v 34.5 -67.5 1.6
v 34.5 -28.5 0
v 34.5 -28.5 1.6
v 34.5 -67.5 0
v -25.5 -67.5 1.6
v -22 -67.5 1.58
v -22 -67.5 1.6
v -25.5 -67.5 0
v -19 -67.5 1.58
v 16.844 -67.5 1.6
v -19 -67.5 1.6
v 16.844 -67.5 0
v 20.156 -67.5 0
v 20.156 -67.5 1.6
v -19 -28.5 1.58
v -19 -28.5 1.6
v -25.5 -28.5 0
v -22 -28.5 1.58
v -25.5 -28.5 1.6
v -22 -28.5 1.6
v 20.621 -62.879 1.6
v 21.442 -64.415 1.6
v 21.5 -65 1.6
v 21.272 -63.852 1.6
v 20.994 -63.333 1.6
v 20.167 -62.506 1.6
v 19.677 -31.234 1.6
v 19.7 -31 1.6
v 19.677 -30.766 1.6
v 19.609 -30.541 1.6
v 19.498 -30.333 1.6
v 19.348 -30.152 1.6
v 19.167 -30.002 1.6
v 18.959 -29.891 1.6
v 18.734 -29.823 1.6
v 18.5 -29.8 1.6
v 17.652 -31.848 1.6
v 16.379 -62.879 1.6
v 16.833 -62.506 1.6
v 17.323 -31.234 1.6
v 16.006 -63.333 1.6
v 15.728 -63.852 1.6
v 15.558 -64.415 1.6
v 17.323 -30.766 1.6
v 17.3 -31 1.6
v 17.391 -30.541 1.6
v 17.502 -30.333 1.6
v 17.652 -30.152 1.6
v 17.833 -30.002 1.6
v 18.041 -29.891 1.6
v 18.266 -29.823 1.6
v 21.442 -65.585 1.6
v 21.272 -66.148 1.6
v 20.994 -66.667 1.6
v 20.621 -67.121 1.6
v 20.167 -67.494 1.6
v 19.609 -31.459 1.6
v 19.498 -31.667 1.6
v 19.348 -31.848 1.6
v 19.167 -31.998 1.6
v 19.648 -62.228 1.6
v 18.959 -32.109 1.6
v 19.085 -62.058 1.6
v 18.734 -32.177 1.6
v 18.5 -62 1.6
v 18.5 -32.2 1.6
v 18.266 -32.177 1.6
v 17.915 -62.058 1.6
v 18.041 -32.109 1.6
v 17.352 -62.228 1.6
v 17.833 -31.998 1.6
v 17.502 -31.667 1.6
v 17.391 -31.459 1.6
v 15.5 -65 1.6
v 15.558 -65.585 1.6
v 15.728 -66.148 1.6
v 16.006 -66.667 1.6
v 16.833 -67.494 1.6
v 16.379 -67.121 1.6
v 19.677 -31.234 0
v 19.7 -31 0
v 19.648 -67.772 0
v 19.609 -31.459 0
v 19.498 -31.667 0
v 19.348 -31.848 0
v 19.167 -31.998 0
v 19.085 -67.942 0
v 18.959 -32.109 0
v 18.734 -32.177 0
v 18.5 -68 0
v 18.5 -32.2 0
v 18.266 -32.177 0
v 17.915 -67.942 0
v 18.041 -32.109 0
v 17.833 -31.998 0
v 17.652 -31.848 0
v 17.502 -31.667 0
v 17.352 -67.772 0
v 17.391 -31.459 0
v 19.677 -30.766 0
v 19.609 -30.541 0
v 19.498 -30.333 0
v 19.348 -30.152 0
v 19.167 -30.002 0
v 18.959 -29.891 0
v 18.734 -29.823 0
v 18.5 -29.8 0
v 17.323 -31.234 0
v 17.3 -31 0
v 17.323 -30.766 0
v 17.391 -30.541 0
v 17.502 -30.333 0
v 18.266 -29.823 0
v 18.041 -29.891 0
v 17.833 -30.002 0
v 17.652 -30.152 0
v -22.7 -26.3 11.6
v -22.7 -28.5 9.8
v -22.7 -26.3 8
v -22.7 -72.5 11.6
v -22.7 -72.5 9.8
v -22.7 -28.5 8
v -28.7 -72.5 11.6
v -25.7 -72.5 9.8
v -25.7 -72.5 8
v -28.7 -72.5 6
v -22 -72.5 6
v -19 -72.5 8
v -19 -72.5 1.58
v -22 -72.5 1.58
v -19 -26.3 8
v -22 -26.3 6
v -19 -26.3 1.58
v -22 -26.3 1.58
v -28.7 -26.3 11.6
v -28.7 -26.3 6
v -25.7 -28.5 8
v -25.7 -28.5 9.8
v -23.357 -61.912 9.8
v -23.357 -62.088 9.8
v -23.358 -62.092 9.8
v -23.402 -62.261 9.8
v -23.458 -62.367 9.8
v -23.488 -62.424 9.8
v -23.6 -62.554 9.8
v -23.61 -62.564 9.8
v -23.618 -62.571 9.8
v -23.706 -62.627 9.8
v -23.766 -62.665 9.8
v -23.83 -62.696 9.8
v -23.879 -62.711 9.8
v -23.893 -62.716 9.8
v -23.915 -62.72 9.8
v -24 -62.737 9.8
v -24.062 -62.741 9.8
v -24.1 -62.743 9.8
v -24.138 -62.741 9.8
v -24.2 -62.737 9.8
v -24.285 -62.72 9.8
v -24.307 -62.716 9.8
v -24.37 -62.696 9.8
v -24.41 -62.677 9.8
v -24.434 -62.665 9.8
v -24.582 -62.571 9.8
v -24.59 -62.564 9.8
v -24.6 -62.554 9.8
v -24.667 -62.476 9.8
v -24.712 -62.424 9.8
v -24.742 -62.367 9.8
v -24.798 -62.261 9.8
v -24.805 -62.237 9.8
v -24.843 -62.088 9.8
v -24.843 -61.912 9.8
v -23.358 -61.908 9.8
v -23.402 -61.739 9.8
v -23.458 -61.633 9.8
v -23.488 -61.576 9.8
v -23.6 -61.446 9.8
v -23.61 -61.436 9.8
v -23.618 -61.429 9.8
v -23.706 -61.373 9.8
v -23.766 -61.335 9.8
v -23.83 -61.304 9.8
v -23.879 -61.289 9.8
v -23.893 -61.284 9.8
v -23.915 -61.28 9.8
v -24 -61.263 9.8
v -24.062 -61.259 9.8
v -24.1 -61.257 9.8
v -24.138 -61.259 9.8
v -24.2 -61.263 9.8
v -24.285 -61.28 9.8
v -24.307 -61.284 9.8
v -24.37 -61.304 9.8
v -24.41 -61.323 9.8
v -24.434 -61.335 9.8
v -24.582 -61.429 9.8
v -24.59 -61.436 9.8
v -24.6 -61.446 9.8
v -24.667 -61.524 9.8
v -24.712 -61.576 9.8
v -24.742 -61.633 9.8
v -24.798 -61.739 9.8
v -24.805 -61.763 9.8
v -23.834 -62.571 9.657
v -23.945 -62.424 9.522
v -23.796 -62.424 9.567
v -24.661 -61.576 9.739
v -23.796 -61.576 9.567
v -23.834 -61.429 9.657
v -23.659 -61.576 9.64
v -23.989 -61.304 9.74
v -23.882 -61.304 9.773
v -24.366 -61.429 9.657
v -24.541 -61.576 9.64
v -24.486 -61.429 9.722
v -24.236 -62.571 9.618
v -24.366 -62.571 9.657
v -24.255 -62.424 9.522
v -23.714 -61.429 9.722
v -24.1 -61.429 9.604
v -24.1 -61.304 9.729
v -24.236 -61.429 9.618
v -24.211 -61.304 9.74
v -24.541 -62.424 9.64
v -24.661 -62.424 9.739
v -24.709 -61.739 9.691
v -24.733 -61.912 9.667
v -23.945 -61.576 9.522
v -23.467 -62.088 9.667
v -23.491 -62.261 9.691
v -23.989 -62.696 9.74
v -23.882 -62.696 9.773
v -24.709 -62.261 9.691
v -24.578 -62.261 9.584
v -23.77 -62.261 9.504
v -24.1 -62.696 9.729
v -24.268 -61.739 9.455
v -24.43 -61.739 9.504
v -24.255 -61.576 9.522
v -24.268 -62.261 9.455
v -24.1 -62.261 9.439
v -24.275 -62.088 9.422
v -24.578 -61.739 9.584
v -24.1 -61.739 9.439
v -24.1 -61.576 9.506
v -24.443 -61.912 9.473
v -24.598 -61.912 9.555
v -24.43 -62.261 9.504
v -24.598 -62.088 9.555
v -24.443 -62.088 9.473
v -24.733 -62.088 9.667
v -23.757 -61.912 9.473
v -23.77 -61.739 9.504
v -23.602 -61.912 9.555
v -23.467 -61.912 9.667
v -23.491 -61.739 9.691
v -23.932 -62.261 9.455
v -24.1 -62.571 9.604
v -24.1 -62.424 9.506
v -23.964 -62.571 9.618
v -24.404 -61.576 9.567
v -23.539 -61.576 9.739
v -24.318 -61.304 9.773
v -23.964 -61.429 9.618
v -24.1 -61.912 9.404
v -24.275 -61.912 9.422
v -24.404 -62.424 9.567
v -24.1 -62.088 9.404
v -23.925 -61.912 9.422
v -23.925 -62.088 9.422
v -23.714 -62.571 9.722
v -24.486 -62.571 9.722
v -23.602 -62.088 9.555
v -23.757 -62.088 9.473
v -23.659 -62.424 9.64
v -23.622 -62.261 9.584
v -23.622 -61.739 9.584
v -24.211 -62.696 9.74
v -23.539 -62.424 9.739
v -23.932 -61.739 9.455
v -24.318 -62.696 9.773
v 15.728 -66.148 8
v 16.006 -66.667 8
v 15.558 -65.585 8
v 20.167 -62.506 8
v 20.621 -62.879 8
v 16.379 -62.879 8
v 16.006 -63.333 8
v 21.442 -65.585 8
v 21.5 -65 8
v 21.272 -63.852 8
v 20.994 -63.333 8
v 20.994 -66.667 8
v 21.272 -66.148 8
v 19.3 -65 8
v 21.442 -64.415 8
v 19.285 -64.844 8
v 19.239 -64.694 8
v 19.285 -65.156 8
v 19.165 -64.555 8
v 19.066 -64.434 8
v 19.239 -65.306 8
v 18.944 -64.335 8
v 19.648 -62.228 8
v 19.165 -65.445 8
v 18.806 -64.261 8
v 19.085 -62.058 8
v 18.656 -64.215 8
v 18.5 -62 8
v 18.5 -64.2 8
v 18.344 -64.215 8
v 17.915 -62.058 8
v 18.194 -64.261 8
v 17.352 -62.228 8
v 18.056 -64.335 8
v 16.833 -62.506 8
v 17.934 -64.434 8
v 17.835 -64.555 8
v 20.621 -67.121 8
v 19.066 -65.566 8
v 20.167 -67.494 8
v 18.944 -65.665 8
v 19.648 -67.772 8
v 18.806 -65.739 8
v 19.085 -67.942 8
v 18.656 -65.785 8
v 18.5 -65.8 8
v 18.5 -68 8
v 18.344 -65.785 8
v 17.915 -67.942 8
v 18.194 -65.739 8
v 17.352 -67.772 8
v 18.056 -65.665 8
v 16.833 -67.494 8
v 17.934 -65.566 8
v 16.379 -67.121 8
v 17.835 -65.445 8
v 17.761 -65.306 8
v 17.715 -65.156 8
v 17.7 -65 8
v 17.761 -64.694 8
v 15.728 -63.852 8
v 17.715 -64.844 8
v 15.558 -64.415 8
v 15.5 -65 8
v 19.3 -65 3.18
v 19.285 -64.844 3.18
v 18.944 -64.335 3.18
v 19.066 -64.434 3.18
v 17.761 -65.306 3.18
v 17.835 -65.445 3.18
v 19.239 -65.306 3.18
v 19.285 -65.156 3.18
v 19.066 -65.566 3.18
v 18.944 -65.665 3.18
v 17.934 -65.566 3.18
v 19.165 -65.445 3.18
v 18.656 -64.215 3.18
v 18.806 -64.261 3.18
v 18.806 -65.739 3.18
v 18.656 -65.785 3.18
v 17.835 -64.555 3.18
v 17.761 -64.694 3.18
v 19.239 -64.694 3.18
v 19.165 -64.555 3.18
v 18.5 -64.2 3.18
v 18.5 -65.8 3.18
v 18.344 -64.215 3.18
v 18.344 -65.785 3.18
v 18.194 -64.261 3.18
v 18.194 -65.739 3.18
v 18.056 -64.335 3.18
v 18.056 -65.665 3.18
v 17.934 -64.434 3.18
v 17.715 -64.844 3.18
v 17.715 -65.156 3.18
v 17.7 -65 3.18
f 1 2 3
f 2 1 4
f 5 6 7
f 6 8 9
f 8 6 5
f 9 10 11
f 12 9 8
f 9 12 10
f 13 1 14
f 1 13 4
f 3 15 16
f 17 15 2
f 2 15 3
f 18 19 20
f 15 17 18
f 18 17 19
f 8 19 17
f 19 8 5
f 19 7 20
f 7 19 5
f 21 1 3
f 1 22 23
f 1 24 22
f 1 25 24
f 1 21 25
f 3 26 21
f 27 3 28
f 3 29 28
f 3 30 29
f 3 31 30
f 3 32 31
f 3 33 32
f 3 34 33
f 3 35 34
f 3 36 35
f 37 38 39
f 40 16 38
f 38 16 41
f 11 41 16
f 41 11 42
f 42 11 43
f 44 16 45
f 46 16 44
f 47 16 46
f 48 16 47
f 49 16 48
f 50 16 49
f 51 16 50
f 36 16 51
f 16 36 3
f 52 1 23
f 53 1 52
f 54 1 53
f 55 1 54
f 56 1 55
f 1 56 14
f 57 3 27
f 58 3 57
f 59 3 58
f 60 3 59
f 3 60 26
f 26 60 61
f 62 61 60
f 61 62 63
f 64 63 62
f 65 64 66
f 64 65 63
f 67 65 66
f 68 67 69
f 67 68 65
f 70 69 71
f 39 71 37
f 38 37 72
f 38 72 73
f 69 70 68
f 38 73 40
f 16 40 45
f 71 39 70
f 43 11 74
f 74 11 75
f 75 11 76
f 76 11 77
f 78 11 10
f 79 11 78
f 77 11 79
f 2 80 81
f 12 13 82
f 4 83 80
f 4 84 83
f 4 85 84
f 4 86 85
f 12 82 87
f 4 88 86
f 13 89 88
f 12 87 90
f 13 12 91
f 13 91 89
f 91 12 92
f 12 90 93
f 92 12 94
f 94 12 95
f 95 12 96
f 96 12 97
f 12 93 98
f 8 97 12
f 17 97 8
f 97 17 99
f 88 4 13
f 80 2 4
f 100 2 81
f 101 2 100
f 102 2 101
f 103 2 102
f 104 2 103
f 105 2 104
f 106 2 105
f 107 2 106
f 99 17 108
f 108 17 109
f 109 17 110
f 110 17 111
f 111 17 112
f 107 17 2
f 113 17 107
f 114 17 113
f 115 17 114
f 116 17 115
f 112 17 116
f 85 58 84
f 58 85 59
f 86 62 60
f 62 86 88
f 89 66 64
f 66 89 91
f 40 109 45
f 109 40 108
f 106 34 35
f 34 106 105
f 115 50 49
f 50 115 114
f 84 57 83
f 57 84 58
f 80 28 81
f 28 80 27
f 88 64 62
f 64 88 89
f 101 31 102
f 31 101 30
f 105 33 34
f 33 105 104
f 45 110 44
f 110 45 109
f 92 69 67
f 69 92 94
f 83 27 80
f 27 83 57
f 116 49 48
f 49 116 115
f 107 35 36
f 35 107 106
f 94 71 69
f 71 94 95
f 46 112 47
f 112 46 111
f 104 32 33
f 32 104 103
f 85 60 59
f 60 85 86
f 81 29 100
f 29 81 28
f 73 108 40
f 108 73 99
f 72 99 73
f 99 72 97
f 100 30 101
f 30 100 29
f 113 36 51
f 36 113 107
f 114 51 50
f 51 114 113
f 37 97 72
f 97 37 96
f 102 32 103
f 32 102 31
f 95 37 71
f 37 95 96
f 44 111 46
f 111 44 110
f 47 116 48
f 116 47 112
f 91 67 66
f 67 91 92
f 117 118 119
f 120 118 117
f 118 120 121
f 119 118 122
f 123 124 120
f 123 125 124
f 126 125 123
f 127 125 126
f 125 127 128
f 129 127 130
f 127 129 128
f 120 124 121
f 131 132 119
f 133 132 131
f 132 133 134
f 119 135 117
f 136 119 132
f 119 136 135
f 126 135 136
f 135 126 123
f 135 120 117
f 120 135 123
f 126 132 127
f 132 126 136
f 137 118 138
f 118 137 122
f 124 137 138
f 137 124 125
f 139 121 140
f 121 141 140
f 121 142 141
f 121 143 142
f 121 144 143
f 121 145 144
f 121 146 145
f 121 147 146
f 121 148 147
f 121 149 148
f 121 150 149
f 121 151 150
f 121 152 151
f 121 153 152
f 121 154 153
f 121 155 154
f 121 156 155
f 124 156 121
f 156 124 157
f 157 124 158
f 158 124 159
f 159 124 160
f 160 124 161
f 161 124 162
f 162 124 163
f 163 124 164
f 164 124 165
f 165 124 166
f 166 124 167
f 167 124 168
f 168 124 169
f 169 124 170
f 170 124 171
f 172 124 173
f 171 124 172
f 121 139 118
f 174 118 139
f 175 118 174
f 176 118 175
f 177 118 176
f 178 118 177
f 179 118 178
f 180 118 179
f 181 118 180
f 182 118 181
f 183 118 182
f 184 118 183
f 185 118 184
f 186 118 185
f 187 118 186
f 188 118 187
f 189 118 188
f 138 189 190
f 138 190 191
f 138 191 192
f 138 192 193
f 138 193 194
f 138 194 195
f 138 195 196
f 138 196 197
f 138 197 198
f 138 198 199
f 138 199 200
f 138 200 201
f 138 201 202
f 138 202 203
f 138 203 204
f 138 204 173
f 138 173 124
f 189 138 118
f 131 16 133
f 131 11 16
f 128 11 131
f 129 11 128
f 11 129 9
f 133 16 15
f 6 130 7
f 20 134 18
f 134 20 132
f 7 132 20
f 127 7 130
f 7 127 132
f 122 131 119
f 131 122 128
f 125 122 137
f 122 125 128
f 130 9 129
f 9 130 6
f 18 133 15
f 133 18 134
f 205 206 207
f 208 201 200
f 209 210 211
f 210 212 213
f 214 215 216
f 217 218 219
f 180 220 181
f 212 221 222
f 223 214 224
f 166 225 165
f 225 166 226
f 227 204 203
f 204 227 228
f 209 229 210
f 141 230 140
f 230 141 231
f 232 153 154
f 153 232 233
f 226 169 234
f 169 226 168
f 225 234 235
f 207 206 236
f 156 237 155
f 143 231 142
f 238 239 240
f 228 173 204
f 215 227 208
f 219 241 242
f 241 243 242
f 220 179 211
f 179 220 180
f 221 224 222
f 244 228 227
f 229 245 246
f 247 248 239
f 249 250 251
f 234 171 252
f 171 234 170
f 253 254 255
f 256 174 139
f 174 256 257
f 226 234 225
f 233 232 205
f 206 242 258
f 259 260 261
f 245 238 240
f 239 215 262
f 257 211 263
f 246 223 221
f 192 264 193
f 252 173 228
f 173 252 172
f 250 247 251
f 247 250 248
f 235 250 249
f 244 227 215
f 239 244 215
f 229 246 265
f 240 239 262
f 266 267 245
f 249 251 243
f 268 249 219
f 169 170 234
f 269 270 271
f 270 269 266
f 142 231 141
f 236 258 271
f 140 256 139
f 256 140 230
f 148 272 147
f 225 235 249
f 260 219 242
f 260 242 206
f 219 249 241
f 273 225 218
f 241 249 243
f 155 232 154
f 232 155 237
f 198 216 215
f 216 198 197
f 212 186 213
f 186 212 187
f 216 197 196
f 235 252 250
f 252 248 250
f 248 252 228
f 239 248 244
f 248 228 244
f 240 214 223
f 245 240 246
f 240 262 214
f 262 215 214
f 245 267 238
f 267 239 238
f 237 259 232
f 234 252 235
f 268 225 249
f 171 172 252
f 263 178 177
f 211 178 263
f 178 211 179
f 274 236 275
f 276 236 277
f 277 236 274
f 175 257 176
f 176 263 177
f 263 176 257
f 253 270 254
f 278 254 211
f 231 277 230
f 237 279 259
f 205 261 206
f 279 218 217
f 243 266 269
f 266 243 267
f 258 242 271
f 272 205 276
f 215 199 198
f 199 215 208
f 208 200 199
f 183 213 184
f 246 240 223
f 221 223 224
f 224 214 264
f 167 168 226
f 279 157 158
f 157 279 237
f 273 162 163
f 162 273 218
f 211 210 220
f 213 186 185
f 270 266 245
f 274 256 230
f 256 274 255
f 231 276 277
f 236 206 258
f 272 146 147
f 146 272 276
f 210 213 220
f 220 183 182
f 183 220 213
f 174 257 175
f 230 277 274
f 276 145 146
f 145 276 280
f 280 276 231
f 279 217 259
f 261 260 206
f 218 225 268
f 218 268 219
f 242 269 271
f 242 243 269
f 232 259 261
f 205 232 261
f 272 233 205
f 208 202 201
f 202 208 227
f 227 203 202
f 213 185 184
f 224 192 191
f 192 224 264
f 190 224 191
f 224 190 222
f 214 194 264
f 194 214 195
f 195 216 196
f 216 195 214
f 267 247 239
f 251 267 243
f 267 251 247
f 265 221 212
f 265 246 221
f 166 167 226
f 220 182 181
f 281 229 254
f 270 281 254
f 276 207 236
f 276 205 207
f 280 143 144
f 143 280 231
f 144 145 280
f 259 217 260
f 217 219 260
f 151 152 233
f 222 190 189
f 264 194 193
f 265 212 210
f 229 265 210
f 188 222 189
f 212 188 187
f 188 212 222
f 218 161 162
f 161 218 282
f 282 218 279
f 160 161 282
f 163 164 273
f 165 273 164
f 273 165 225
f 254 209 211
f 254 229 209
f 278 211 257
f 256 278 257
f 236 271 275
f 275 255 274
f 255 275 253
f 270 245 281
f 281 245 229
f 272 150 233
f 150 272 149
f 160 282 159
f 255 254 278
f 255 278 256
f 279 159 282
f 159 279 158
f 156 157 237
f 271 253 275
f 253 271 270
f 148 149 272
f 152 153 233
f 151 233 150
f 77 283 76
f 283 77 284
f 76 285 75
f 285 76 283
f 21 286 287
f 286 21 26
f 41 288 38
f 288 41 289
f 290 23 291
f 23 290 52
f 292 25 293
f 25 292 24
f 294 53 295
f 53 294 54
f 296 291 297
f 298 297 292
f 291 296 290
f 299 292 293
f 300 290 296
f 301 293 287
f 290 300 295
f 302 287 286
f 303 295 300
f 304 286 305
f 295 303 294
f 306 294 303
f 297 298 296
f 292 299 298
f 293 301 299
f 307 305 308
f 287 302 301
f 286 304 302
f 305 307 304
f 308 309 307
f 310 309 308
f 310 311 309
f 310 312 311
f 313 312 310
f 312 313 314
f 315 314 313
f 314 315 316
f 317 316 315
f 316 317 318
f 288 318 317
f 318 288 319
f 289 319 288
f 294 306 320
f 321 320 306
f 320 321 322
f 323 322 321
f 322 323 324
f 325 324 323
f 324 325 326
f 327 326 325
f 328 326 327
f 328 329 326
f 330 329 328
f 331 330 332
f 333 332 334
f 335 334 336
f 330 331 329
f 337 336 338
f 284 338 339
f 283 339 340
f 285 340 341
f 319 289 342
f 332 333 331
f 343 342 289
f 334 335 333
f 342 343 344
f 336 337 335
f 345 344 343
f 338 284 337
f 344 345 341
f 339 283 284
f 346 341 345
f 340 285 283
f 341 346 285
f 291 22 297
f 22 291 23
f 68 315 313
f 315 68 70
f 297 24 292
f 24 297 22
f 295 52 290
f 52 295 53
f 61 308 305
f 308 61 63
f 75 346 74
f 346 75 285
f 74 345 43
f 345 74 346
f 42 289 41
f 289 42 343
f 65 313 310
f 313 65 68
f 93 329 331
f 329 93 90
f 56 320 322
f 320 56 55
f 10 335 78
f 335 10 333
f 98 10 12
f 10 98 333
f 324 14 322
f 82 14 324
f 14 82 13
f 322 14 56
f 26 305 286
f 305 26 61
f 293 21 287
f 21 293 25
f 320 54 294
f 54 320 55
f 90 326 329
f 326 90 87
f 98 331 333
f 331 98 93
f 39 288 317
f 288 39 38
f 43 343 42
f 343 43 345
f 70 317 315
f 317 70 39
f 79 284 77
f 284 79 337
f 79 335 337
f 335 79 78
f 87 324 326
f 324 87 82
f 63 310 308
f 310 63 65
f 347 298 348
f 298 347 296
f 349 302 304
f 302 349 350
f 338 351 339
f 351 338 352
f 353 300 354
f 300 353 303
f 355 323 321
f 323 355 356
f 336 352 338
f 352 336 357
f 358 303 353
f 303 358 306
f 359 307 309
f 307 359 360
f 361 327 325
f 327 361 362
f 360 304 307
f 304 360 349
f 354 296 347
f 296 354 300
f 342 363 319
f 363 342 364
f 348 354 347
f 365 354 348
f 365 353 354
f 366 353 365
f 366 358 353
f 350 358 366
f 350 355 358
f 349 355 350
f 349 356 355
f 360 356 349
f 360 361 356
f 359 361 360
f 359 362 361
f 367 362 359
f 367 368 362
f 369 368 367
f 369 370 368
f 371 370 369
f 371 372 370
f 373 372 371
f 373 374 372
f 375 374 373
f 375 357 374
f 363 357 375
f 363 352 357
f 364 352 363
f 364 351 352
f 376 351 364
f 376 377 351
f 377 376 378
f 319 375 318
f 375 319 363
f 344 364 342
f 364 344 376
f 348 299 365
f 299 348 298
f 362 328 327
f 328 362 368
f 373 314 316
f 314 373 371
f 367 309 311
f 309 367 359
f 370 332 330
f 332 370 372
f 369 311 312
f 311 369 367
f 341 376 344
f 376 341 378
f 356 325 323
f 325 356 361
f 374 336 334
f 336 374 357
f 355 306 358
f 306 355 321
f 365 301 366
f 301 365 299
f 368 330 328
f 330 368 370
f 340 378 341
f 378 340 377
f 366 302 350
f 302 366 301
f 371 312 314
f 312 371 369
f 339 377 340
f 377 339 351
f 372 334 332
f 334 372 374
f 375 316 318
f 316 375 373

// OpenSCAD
// SPDX-License-Identifier: GPL-3.0-only
// See ../../NOTICE.md and ../../LICENSE.
// RC522 retrofit offset carrier for rough-box.scad.
//
// The 1.6 mm base is a dummy RC522 PCB: it drops into the enclosure's
// existing coil-end C-rail and lands on the existing pin-side bosses. A
// second C-rail and an upper spacer boss hold the RC522 8 mm farther into
// the enclosure.
//
// Two M2x6 screws are fitted in sequence: lower hole from shim to enclosure,
// then upper hole from RC522 to shim. Print with the dummy PCB flat.

$fn = 32;

// Match the RFID mount dimensions in rough-box.scad.
board_len       = 60;
board_h         = 39;
board_t         = 1.6;
board_hole_cc_x = 37;
board_hole_cc_z = 34;
board_far_off   = 7;
board_cz        = 48;

offset          = 8;       // supported range: 8-10 mm
m2_clearance    = 2.4;
m2_pilot        = 1.6;

board_coil_x = -(board_hole_cc_x/2 + board_far_off);
board_pin_x  = board_hole_cc_x/2;
board_bottom = board_cz - board_h/2;
board_top    = board_cz + board_h/2;
lower_hole_z = board_cz - board_hole_cc_z/2;
upper_hole_z = board_cz + board_hole_cc_z/2;
eps          = 0.02;

module y_hole(d, length) {
  // Cylinder starts at the caller's y coordinate and cuts toward -Y.
  rotate([90, 0, 0]) cylinder(d=d, h=length);
}

module dummy_board() {
  difference() {
    translate([board_coil_x, 0, board_bottom])
      cube([board_len, board_t, board_h]);

    // Lower M2x6 screw fixes the dummy PCB to the enclosure's lower boss.
    translate([board_pin_x, board_t + eps, lower_hole_z])
      y_hole(m2_clearance, board_t + 2*eps);
  }
}

module upper_reader_standoff() {
  pilot_depth = 4.8;

  difference() {
    // Upper RC522 hole gets the same 6 mm boss as the original mount.
    translate([board_pin_x, 0, upper_hole_z])
      rotate([-90, 0, 0]) cylinder(d=6, h=offset);

    // Upper M2x6 screw self-taps into the shim after the RC522 is inserted.
    translate([board_pin_x, offset + board_t + eps, upper_hole_z])
      y_hole(m2_pilot, board_t + pilot_depth + 2*eps);
  }
}

module shifted_coil_rail() {
  rail_x0     = board_coil_x - 3.2;
  rail_w      = 6;
  rail_back   = 2;
  rail_bottom = board_bottom - 2.2;
  rail_top    = 72.5;
  rail_h      = rail_top - rail_bottom;
  spine_x     = board_coil_x + 3.5; // clears the old rail's inner edge
  spine_w     = 3;

  union() {
    difference() {
      // Back, end wall and front lip form the new drop-in C-channel.
      translate([rail_x0, offset - rail_back, rail_bottom])
        cube([rail_w, rail_back + board_t + 2, rail_h]);

      // 0.2 mm clearance around the RC522 edge and PCB thickness.
      translate([board_coil_x - 0.2, offset - 0.2, board_bottom])
        cube([4, board_t + 0.4, board_h + 10]);
    }

    // A narrow full-height spine rises from the dummy PCB just beyond the
    // old C-rail. The short back flange joins it to the shifted C-channel.
    translate([spine_x, board_t - eps, rail_bottom])
      cube([spine_w, offset - board_t + eps, rail_h]);
    translate([rail_x0, offset - rail_back, rail_bottom])
      cube([spine_x + eps - rail_x0, rail_back, rail_h]);

    // Match the original rail's light anti-rattle pressure on the PCB edge.
    translate([board_coil_x + 1.4, offset + board_t + 0.7, 62])
      sphere(d=1.8);
  }
}

module shim() {
  dummy_board();
  shifted_coil_rail();
  upper_reader_standoff();
}

// Rotate the installed orientation so the dummy-PCB plane prints flat.
rotate([90, 0, 0]) shim();
